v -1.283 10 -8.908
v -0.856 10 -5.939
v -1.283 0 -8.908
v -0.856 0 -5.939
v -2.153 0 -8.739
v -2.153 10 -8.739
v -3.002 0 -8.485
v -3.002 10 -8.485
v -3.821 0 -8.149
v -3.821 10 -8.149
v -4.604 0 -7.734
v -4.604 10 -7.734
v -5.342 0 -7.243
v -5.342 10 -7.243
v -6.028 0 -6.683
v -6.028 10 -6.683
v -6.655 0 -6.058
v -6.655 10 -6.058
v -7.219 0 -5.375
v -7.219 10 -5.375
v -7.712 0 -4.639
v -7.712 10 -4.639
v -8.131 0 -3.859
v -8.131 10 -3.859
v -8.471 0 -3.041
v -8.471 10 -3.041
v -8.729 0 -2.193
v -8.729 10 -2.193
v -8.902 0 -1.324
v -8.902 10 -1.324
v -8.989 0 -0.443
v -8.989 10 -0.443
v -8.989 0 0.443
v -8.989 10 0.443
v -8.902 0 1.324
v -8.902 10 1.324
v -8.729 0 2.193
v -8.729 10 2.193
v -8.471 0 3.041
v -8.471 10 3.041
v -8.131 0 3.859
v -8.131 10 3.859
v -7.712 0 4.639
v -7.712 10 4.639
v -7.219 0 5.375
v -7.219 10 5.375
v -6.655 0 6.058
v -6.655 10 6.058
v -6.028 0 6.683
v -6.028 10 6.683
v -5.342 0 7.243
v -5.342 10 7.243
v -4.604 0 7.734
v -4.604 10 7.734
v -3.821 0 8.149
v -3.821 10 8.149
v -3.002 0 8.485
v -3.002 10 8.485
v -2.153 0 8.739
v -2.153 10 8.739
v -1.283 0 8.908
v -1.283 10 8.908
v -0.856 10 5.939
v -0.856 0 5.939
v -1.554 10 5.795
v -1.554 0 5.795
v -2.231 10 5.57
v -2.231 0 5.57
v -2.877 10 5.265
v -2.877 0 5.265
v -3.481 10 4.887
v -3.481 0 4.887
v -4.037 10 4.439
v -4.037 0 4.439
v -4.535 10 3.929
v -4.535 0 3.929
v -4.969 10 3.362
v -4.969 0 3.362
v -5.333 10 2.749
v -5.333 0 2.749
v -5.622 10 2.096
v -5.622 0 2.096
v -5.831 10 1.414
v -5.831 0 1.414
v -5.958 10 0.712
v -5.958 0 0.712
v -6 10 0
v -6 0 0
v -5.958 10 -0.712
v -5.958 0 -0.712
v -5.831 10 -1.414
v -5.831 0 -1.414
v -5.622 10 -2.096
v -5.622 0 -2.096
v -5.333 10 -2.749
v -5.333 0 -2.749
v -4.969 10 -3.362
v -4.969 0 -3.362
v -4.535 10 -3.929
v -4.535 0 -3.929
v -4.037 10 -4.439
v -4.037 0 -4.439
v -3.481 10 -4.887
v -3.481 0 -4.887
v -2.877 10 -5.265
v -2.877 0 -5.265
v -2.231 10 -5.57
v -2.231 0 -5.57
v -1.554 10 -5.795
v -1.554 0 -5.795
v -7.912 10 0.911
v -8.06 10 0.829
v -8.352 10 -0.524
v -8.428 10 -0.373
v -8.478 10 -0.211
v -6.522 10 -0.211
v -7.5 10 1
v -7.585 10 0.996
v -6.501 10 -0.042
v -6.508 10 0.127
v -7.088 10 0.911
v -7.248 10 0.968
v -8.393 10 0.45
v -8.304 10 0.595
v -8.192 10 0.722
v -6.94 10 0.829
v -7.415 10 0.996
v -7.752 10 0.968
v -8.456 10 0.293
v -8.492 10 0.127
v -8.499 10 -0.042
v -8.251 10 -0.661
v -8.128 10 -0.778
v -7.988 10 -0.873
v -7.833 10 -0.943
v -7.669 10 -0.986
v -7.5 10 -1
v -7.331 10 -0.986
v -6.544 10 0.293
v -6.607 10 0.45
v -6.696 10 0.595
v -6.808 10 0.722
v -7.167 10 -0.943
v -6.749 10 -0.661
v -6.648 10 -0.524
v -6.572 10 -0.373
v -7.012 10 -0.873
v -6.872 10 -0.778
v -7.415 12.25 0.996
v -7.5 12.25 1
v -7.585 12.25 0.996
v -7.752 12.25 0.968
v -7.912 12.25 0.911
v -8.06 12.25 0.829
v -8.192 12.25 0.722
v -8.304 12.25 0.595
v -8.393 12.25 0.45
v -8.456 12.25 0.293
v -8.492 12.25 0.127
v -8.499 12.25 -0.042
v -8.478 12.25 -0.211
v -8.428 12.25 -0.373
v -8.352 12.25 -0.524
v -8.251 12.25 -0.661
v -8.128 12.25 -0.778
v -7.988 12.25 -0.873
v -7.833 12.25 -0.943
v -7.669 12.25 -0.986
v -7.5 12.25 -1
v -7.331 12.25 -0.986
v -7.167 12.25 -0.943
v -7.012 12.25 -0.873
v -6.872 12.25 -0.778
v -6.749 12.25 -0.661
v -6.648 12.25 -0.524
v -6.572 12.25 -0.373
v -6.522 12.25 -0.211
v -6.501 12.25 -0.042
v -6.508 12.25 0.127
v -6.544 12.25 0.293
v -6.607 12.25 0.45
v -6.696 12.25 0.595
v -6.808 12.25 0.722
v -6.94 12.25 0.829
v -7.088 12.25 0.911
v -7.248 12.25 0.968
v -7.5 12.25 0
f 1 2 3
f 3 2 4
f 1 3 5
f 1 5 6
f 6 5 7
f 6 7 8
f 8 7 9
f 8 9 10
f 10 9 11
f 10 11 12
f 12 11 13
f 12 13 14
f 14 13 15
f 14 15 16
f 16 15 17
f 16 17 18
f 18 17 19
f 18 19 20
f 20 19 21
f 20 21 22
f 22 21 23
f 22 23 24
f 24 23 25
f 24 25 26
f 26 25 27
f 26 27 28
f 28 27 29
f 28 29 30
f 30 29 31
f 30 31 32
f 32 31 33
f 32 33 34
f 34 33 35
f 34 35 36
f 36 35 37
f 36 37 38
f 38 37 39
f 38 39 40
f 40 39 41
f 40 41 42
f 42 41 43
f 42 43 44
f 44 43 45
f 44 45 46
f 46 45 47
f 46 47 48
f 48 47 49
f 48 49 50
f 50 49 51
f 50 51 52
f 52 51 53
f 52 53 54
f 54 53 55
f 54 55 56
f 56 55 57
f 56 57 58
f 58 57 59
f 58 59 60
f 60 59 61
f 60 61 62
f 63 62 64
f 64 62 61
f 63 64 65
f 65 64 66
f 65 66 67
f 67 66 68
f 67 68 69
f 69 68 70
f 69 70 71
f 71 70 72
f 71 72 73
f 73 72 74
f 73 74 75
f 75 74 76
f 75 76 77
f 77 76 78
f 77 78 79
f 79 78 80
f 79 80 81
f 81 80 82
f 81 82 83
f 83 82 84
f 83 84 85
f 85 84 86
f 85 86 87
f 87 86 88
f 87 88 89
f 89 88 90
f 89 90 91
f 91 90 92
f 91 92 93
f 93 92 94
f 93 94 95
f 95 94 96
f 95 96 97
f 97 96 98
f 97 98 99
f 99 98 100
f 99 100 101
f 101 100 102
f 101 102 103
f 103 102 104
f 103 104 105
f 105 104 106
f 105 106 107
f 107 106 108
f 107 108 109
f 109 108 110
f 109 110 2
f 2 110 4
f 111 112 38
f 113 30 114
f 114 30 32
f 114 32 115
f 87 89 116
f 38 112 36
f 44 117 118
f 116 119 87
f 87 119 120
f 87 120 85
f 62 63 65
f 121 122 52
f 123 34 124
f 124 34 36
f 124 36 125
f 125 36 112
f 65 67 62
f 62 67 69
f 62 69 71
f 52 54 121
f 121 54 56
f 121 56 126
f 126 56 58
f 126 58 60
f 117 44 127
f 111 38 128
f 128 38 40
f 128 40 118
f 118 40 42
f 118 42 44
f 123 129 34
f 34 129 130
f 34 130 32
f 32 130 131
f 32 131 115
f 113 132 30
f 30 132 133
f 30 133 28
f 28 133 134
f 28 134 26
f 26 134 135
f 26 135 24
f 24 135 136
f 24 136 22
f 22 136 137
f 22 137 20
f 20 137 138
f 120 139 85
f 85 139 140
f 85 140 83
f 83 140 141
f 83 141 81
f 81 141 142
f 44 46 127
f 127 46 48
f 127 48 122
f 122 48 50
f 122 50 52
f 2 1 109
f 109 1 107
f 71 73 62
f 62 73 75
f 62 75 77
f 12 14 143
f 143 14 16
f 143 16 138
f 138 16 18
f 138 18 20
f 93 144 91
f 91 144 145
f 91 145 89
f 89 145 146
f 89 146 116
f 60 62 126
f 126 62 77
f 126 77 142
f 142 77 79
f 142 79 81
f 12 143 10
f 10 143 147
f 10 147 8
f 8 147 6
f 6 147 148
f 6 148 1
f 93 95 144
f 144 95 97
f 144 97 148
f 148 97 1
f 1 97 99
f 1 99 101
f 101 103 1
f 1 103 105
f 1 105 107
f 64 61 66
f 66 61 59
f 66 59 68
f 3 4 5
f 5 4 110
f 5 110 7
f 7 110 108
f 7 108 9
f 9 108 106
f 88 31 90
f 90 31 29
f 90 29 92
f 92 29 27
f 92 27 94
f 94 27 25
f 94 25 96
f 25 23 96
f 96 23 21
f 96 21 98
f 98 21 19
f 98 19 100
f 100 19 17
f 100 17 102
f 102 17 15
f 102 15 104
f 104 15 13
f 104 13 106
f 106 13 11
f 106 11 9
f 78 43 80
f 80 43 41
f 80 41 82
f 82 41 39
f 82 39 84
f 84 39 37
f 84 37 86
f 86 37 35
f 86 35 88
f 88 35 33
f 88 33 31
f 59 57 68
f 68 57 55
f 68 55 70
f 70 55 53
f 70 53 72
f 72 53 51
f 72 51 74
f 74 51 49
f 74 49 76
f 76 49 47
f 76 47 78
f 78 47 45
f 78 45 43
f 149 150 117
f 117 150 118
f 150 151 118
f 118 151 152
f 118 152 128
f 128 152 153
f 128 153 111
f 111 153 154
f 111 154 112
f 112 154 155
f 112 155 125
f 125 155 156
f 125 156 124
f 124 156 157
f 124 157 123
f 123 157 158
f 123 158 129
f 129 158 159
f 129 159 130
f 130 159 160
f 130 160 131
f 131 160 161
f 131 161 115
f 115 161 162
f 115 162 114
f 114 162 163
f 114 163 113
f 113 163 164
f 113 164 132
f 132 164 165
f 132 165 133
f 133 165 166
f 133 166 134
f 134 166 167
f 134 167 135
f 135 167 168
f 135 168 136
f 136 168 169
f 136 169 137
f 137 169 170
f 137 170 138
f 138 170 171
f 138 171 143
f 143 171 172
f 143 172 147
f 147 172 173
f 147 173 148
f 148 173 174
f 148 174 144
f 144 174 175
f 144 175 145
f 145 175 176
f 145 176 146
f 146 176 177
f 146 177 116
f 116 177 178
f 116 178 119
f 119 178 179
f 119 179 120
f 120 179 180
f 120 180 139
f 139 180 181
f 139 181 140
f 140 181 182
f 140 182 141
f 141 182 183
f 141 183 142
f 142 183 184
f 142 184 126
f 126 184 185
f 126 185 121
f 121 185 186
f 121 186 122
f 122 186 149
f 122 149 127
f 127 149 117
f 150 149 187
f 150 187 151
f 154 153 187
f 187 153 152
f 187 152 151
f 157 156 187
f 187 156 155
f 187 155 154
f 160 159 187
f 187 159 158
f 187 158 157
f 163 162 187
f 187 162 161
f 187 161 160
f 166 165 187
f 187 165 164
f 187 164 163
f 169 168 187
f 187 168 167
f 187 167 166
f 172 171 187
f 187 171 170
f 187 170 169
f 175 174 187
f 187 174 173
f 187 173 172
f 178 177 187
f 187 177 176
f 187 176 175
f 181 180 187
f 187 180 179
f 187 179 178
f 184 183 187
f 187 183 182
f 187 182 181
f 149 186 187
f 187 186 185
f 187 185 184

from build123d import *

# Parameters (mm, degrees)
BOSS_EXTRUDE1_DEPTH = 10
SKETCH2_R           = 1
BOSS_EXTRUDE2_DEPTH = 2.25


with BuildPart() as part:
    # Sketch1 → Boss-Extrude1 (new body)
    with BuildSketch(Plane(origin=(0, 0, 0), x_dir=(1, 0, 0), z_dir=(0, 1, 0))):
        with BuildLine():
            ThreePointArc((-0.855605783, -5.938681566), (-6, 0), (-0.855605783, 5.938681566))
            Line((-0.855605783, 5.938681566), (-1.283408674, 8.908022349))
            ThreePointArc((-1.283408674, 8.908022349), (-9, 0), (-1.283408674, -8.908022349))
            Line((-1.283408674, -8.908022349), (-0.855605783, -5.938681566))
        make_face()
    extrude(amount=BOSS_EXTRUDE1_DEPTH)

    # Sketch2 → Boss-Extrude2 (add)
    with BuildSketch(Plane(origin=(0, 10, 0), x_dir=(1, 0, 0), z_dir=(0, 1, 0))):
        with Locations(Location((-7.5, 0, 0), (0, 0, 270))):
            Circle(SKETCH2_R)
    extrude(amount=BOSS_EXTRUDE2_DEPTH)


solid = part.part
